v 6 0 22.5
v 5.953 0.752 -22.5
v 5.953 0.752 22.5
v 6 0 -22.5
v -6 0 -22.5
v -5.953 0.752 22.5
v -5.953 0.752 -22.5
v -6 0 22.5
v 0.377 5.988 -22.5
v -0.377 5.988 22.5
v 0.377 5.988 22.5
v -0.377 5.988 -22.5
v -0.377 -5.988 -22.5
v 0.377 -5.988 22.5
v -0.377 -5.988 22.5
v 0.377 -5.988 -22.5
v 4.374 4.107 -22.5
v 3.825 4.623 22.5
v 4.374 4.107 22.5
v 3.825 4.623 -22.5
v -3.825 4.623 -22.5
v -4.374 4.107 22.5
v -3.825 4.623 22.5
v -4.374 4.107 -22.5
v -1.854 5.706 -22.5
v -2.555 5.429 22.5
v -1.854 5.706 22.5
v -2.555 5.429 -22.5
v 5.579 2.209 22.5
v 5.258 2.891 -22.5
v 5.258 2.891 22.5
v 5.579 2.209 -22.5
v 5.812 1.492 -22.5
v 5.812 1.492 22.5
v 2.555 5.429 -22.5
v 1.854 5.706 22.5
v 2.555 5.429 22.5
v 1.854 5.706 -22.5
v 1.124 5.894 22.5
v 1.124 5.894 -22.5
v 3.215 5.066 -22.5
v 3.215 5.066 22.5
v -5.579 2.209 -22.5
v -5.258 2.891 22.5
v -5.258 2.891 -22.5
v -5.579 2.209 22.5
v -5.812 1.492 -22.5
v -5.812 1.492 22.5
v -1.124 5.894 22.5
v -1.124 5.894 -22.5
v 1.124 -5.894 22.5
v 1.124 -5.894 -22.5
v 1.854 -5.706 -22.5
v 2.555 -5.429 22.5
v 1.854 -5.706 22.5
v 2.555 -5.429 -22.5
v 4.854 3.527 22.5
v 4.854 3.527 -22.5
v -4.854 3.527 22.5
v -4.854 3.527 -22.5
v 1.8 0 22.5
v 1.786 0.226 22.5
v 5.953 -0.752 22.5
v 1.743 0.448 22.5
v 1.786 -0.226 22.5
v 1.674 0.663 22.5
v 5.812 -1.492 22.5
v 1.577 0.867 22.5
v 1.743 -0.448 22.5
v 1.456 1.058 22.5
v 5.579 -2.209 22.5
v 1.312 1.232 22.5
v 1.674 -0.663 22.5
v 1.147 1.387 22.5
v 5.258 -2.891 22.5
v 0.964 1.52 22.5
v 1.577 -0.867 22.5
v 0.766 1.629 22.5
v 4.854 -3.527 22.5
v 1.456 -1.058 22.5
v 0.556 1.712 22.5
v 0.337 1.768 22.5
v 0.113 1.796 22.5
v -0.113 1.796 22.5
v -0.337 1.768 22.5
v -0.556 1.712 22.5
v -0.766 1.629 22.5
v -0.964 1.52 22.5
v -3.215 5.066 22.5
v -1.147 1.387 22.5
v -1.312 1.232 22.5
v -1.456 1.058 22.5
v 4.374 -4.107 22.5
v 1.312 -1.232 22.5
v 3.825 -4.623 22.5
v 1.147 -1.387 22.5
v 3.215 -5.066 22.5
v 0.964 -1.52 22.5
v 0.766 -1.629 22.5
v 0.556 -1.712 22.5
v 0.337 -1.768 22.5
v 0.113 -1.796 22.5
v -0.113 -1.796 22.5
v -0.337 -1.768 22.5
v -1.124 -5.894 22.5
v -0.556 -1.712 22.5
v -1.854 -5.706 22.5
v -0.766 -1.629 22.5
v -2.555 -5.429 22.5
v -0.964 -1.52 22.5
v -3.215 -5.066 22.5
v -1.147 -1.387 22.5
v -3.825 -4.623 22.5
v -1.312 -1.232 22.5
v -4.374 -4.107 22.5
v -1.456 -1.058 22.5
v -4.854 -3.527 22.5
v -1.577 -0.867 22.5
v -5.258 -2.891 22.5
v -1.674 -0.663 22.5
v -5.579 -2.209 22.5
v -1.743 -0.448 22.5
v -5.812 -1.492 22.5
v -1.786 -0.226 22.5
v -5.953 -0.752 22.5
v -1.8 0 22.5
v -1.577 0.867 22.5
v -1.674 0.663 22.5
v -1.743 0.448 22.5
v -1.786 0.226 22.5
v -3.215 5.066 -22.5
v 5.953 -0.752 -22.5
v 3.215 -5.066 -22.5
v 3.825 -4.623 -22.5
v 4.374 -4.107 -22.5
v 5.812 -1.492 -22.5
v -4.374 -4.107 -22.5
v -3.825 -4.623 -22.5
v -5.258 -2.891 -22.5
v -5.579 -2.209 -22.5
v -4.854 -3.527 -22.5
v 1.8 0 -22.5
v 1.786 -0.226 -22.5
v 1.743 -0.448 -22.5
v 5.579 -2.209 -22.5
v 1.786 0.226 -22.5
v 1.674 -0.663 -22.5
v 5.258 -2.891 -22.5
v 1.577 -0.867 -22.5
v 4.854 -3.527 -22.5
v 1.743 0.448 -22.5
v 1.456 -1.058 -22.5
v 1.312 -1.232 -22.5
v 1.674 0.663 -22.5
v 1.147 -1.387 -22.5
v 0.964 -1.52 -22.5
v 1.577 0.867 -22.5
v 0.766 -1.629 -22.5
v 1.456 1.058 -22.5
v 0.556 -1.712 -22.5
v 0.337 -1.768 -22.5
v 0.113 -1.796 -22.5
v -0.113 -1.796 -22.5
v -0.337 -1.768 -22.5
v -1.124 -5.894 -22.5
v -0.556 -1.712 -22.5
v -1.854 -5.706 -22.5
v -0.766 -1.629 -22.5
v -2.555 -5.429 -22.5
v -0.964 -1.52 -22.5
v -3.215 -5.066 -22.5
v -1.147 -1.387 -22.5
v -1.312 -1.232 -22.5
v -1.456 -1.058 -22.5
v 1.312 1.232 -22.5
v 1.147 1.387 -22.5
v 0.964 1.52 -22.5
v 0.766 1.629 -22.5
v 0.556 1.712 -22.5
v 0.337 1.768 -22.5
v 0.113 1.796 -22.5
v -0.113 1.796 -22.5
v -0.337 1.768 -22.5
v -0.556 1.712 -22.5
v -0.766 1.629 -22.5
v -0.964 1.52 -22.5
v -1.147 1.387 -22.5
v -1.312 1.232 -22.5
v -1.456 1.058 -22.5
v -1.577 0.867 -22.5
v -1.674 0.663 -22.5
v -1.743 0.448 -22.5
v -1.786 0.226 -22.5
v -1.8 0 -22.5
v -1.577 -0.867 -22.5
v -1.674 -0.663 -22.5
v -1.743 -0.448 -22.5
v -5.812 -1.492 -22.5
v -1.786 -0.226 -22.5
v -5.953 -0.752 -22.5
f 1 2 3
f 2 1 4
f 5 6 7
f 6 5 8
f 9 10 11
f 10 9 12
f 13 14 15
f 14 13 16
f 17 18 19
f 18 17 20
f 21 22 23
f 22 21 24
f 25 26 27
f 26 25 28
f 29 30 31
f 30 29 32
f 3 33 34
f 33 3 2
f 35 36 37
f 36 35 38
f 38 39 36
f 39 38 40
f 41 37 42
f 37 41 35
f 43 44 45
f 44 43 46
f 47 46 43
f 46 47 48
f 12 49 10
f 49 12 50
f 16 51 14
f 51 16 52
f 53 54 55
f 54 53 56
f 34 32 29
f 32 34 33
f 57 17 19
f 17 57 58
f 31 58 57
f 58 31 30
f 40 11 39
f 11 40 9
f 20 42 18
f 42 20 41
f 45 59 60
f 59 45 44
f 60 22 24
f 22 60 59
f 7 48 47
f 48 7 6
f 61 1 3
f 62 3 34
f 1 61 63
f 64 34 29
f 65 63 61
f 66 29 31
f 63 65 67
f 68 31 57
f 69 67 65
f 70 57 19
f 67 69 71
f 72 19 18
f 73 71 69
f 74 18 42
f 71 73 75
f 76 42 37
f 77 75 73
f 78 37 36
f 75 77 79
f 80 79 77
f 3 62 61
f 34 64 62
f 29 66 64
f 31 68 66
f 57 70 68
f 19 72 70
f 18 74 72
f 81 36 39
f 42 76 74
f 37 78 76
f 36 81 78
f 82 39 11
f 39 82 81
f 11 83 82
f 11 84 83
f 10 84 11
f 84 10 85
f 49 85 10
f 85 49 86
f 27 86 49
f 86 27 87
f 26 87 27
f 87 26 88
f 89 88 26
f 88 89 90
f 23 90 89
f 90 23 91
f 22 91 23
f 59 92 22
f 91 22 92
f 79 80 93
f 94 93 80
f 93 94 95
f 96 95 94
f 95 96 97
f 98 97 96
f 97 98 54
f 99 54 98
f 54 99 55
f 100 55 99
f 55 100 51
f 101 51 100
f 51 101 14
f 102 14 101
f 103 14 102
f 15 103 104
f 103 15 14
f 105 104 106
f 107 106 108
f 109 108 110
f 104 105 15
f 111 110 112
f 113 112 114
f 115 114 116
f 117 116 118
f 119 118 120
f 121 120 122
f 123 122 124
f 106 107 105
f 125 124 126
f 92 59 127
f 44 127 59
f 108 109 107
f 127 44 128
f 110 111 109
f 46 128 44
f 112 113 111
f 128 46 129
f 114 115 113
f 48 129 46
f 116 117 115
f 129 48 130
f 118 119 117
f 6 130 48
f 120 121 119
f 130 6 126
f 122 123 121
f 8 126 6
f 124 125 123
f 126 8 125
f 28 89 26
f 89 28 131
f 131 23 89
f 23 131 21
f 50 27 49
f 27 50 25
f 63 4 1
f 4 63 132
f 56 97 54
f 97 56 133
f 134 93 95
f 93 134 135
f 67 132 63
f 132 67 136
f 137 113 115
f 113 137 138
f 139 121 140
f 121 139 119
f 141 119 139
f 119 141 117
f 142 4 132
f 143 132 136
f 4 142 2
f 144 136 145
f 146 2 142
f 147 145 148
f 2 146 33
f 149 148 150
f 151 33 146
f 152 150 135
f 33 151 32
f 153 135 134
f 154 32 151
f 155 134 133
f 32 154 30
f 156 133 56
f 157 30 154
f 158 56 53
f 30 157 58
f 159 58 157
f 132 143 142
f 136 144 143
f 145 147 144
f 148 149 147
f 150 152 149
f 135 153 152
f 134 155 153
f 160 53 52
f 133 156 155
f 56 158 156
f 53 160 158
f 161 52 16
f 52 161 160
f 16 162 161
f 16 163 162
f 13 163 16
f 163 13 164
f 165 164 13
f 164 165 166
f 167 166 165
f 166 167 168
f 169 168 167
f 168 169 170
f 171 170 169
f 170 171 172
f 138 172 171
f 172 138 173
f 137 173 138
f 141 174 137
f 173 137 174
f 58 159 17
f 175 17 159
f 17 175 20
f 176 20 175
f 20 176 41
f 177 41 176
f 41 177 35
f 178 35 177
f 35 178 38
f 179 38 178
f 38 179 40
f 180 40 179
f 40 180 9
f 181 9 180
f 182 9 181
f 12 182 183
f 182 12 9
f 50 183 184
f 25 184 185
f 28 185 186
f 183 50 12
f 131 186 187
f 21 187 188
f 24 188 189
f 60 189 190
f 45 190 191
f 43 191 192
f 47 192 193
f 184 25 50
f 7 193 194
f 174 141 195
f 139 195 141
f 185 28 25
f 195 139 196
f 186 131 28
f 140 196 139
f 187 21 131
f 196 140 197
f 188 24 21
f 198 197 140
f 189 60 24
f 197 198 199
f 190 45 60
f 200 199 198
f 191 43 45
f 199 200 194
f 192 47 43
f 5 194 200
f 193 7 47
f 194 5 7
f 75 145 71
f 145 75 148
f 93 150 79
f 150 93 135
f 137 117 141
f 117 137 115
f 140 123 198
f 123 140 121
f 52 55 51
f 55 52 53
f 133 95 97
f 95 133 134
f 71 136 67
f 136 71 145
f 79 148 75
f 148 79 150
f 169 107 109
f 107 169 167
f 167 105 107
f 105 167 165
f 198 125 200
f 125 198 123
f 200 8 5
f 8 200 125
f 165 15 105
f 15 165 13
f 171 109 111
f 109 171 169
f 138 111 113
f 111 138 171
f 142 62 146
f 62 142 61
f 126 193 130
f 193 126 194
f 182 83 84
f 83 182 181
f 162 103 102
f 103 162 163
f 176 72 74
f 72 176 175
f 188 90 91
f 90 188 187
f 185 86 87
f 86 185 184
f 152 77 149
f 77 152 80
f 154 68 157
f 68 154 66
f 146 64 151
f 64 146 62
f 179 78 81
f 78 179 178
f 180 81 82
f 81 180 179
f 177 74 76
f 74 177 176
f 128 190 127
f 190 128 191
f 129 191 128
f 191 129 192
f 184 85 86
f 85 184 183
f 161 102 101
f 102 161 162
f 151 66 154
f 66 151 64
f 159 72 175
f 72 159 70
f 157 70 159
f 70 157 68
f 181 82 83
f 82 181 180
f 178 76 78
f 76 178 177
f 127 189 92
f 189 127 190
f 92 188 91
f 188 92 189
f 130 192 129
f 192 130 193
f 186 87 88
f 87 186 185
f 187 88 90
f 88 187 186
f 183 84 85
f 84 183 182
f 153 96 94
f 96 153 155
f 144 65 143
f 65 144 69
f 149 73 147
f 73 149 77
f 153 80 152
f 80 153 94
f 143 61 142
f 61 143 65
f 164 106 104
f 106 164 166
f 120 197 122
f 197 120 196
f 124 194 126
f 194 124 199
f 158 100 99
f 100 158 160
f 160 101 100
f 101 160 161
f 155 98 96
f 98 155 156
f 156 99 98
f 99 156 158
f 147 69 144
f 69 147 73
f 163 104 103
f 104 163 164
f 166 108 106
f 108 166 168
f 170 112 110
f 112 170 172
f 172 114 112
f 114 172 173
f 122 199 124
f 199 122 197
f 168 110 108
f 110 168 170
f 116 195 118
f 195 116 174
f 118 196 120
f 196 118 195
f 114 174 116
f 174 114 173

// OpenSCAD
$fn = 50;


difference() {
	union() {
		translate(v = [0, 0, -22.5000000000]) {
			cylinder(h = 45, r = 6.0000000000);
		}
	}
	union() {
		translate(v = [0, 0, -100.0000000000]) {
			cylinder(h = 200, r = 1.8000000000);
		}
	}
}
